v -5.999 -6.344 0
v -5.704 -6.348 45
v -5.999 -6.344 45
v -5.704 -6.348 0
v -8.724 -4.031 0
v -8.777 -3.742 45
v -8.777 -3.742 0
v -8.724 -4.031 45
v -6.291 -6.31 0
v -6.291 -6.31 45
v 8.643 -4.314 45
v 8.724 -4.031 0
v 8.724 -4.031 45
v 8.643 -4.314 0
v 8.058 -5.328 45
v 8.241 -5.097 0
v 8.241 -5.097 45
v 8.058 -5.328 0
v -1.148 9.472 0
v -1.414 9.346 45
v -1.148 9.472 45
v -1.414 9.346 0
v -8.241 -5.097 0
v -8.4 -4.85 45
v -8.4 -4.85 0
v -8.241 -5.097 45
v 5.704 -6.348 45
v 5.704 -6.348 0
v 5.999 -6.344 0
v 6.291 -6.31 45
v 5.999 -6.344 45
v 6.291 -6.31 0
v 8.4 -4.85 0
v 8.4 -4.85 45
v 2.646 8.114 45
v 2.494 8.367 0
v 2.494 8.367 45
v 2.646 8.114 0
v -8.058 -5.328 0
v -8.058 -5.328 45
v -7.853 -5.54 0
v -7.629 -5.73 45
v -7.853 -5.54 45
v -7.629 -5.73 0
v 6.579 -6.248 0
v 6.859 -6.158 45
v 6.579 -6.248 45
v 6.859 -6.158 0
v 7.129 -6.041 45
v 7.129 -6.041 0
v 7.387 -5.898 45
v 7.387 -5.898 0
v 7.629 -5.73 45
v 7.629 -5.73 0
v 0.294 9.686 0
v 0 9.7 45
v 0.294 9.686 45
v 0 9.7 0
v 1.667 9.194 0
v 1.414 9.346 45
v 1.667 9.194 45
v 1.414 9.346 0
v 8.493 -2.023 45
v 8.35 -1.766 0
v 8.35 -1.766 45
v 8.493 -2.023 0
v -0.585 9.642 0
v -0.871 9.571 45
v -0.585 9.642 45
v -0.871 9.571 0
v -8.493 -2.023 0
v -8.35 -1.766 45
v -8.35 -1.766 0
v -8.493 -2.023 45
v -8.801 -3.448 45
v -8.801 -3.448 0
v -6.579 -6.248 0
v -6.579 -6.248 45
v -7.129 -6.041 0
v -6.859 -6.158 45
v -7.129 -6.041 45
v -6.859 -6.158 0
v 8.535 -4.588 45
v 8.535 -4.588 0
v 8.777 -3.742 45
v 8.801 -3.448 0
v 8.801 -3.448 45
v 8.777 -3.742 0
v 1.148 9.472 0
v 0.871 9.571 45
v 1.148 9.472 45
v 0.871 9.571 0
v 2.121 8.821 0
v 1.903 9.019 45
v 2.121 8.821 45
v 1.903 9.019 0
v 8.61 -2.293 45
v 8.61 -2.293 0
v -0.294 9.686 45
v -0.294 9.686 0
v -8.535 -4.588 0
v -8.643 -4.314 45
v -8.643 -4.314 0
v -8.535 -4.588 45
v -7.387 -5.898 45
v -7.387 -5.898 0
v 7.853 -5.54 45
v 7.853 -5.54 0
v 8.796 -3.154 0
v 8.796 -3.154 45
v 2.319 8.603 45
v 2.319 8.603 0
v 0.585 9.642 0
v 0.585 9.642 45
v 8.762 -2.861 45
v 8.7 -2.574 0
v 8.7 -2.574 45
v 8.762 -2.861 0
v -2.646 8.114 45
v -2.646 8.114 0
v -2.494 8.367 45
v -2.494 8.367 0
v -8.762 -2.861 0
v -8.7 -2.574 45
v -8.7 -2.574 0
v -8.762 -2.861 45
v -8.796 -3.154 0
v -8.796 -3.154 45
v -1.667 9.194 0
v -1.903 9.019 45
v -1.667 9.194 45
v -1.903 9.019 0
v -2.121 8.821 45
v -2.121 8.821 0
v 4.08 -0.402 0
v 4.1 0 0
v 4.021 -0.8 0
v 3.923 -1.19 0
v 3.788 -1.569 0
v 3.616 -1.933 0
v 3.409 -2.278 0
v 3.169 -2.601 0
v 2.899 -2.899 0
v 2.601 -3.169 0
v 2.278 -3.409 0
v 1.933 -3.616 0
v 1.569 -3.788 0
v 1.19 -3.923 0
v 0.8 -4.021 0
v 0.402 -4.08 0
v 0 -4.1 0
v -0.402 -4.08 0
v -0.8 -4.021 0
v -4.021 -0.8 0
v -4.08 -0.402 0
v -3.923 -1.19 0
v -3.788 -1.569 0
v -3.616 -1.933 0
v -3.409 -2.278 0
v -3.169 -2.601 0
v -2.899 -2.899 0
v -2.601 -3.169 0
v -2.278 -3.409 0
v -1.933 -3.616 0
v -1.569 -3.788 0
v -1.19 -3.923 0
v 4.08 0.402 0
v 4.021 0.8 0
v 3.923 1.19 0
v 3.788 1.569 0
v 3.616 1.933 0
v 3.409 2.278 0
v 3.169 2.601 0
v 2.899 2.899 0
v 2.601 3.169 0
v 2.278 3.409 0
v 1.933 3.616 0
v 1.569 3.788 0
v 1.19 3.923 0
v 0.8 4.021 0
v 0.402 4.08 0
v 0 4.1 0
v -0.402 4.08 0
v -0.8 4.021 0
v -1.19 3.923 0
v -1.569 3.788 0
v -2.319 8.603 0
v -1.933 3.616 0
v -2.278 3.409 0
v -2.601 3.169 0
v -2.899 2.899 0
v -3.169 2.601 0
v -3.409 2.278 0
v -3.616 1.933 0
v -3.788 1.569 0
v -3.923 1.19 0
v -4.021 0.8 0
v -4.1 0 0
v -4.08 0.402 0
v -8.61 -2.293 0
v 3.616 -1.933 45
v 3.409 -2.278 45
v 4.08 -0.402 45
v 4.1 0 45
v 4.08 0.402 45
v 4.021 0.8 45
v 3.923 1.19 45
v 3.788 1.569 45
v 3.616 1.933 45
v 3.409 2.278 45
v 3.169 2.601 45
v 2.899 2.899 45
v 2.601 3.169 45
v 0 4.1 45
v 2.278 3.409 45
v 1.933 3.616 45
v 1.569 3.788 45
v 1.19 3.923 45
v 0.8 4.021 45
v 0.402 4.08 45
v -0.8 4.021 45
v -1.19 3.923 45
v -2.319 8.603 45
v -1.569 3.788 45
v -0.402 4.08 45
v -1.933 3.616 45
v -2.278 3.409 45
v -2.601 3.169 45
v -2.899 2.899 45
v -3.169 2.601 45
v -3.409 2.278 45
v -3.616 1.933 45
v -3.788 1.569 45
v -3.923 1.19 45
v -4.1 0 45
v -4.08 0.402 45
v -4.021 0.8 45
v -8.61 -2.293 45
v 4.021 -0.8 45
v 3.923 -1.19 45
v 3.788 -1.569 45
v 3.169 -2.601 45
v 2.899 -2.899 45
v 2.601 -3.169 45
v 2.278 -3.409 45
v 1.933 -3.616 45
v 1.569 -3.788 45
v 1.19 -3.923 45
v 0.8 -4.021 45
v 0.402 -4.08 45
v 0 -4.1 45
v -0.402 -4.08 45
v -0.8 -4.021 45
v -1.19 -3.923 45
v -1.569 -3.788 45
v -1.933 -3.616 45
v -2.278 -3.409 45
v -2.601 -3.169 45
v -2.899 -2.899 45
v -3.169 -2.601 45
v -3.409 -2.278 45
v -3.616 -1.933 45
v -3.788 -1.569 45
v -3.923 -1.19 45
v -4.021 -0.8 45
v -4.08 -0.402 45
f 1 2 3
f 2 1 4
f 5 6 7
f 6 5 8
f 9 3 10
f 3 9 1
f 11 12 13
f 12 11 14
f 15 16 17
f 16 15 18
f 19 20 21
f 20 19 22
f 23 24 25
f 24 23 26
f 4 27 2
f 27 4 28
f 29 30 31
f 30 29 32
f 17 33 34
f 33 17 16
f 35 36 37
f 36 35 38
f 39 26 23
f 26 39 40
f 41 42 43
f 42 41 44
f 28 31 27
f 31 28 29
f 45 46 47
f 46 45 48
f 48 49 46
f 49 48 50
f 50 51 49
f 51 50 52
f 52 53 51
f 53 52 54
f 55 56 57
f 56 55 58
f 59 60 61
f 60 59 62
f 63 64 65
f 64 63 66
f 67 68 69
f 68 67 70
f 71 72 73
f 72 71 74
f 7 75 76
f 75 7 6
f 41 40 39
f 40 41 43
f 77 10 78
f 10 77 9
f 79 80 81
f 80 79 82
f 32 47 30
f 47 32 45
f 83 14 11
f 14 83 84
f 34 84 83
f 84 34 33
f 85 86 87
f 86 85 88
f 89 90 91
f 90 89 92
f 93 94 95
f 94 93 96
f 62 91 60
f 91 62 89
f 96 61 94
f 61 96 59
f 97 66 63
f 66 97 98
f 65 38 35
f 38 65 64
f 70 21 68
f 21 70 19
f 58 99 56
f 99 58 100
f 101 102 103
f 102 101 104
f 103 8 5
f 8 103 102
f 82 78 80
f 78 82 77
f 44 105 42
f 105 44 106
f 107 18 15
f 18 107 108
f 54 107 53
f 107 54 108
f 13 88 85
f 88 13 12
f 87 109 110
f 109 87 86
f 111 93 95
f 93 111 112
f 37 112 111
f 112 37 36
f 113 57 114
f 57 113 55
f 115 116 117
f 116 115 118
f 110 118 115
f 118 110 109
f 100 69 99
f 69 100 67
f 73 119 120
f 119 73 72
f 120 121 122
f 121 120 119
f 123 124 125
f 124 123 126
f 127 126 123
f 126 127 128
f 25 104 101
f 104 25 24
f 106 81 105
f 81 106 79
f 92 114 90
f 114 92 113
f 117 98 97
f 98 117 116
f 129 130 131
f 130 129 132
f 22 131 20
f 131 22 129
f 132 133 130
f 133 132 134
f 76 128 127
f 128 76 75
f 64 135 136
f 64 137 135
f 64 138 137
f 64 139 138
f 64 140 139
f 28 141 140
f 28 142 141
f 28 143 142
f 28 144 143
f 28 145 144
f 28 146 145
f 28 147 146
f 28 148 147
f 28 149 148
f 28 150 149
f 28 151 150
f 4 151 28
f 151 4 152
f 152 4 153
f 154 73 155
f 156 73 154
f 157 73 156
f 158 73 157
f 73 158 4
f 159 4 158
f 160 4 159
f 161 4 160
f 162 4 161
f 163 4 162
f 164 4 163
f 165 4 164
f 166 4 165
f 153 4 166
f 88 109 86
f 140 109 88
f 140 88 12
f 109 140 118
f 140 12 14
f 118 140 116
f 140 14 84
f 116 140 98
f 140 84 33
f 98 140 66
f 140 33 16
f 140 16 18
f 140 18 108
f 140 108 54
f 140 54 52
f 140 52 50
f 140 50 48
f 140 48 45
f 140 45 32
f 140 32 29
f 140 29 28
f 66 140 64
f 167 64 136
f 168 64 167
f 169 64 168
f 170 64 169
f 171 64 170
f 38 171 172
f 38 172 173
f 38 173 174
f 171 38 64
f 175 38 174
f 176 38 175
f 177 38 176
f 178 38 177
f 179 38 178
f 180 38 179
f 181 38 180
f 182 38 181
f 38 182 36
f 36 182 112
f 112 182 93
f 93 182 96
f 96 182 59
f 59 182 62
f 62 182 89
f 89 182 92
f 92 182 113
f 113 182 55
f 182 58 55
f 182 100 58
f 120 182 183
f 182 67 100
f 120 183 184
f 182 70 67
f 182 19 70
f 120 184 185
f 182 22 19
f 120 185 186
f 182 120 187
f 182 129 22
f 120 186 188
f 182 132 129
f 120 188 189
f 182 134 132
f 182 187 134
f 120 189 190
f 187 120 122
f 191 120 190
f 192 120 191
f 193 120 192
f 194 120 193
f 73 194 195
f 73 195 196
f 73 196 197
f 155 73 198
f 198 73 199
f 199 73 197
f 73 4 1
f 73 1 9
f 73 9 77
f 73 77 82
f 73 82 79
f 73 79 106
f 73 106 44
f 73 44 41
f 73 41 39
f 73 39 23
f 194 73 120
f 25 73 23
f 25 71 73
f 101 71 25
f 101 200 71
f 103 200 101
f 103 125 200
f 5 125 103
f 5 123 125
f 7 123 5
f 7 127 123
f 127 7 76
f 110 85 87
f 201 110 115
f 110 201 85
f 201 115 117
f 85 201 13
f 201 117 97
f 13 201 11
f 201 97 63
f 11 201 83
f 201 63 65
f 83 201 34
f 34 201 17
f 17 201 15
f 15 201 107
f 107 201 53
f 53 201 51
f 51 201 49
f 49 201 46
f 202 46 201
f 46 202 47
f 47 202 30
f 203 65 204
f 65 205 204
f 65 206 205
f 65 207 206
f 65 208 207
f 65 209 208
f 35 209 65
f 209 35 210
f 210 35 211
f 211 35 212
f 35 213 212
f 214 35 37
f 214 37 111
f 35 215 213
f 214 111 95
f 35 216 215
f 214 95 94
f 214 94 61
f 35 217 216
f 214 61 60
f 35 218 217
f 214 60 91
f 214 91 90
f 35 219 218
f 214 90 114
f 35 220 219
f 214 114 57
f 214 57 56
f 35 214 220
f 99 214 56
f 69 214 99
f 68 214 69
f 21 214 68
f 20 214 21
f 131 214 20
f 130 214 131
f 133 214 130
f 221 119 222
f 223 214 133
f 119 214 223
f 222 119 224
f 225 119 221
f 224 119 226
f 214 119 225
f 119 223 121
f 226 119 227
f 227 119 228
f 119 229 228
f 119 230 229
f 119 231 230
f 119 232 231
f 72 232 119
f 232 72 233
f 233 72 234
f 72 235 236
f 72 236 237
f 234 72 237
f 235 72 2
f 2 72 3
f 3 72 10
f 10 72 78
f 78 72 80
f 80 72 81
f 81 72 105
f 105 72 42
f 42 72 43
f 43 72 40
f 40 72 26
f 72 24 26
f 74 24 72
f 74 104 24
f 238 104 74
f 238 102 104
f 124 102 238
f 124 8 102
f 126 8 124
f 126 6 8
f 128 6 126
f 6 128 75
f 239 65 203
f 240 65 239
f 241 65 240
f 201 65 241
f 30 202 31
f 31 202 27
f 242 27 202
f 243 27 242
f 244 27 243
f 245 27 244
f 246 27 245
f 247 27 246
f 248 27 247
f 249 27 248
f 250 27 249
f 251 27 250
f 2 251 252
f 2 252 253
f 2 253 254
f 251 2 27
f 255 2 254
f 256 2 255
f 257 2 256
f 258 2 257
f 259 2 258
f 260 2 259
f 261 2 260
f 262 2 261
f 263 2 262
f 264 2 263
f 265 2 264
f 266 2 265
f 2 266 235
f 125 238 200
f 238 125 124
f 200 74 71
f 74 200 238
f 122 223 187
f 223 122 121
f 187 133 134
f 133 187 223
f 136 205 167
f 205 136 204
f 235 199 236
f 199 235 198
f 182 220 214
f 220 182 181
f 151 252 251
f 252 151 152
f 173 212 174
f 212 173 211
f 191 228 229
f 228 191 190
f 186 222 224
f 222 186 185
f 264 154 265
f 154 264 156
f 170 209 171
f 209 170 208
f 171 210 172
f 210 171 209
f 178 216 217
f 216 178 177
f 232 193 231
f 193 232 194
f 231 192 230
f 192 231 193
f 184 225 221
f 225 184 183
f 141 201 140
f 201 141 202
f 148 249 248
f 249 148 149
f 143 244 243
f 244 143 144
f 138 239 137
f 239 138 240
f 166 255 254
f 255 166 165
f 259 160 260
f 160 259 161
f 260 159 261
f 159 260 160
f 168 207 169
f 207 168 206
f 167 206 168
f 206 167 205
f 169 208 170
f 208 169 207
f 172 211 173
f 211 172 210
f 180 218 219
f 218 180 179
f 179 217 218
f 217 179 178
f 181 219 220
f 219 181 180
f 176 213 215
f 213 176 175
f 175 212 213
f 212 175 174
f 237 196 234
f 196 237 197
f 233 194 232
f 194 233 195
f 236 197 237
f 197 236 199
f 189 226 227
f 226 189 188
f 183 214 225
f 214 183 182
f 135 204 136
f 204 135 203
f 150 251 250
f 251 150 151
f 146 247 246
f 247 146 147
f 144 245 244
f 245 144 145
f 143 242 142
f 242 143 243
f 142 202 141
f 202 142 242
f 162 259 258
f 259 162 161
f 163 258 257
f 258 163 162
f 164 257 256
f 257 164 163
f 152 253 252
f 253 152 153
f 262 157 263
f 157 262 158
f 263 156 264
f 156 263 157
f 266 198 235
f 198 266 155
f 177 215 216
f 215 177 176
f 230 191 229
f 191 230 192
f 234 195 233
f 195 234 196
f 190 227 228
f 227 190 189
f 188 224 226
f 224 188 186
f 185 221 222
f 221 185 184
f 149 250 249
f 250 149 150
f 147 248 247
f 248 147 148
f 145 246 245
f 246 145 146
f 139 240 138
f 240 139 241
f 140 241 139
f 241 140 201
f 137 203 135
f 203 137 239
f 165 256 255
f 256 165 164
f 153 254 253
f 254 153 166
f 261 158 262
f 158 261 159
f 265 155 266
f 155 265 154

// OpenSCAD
// Reto 01 · Adaptador ergonómico triangular para lápiz
// Diseño e Impresión 3D en el aula · Pablo Moraga · CC BY-NC-ND 4.0
$fn = 64;
r = 3; c = 6.7;
difference() {
  hull() for (k = [0:2]) rotate([0, 0, 90 + k * 120]) translate([c, 0, 0]) cylinder(r = r, h = 45);
  translate([0, 0, -1]) cylinder(d = 8.2, h = 47);
}
